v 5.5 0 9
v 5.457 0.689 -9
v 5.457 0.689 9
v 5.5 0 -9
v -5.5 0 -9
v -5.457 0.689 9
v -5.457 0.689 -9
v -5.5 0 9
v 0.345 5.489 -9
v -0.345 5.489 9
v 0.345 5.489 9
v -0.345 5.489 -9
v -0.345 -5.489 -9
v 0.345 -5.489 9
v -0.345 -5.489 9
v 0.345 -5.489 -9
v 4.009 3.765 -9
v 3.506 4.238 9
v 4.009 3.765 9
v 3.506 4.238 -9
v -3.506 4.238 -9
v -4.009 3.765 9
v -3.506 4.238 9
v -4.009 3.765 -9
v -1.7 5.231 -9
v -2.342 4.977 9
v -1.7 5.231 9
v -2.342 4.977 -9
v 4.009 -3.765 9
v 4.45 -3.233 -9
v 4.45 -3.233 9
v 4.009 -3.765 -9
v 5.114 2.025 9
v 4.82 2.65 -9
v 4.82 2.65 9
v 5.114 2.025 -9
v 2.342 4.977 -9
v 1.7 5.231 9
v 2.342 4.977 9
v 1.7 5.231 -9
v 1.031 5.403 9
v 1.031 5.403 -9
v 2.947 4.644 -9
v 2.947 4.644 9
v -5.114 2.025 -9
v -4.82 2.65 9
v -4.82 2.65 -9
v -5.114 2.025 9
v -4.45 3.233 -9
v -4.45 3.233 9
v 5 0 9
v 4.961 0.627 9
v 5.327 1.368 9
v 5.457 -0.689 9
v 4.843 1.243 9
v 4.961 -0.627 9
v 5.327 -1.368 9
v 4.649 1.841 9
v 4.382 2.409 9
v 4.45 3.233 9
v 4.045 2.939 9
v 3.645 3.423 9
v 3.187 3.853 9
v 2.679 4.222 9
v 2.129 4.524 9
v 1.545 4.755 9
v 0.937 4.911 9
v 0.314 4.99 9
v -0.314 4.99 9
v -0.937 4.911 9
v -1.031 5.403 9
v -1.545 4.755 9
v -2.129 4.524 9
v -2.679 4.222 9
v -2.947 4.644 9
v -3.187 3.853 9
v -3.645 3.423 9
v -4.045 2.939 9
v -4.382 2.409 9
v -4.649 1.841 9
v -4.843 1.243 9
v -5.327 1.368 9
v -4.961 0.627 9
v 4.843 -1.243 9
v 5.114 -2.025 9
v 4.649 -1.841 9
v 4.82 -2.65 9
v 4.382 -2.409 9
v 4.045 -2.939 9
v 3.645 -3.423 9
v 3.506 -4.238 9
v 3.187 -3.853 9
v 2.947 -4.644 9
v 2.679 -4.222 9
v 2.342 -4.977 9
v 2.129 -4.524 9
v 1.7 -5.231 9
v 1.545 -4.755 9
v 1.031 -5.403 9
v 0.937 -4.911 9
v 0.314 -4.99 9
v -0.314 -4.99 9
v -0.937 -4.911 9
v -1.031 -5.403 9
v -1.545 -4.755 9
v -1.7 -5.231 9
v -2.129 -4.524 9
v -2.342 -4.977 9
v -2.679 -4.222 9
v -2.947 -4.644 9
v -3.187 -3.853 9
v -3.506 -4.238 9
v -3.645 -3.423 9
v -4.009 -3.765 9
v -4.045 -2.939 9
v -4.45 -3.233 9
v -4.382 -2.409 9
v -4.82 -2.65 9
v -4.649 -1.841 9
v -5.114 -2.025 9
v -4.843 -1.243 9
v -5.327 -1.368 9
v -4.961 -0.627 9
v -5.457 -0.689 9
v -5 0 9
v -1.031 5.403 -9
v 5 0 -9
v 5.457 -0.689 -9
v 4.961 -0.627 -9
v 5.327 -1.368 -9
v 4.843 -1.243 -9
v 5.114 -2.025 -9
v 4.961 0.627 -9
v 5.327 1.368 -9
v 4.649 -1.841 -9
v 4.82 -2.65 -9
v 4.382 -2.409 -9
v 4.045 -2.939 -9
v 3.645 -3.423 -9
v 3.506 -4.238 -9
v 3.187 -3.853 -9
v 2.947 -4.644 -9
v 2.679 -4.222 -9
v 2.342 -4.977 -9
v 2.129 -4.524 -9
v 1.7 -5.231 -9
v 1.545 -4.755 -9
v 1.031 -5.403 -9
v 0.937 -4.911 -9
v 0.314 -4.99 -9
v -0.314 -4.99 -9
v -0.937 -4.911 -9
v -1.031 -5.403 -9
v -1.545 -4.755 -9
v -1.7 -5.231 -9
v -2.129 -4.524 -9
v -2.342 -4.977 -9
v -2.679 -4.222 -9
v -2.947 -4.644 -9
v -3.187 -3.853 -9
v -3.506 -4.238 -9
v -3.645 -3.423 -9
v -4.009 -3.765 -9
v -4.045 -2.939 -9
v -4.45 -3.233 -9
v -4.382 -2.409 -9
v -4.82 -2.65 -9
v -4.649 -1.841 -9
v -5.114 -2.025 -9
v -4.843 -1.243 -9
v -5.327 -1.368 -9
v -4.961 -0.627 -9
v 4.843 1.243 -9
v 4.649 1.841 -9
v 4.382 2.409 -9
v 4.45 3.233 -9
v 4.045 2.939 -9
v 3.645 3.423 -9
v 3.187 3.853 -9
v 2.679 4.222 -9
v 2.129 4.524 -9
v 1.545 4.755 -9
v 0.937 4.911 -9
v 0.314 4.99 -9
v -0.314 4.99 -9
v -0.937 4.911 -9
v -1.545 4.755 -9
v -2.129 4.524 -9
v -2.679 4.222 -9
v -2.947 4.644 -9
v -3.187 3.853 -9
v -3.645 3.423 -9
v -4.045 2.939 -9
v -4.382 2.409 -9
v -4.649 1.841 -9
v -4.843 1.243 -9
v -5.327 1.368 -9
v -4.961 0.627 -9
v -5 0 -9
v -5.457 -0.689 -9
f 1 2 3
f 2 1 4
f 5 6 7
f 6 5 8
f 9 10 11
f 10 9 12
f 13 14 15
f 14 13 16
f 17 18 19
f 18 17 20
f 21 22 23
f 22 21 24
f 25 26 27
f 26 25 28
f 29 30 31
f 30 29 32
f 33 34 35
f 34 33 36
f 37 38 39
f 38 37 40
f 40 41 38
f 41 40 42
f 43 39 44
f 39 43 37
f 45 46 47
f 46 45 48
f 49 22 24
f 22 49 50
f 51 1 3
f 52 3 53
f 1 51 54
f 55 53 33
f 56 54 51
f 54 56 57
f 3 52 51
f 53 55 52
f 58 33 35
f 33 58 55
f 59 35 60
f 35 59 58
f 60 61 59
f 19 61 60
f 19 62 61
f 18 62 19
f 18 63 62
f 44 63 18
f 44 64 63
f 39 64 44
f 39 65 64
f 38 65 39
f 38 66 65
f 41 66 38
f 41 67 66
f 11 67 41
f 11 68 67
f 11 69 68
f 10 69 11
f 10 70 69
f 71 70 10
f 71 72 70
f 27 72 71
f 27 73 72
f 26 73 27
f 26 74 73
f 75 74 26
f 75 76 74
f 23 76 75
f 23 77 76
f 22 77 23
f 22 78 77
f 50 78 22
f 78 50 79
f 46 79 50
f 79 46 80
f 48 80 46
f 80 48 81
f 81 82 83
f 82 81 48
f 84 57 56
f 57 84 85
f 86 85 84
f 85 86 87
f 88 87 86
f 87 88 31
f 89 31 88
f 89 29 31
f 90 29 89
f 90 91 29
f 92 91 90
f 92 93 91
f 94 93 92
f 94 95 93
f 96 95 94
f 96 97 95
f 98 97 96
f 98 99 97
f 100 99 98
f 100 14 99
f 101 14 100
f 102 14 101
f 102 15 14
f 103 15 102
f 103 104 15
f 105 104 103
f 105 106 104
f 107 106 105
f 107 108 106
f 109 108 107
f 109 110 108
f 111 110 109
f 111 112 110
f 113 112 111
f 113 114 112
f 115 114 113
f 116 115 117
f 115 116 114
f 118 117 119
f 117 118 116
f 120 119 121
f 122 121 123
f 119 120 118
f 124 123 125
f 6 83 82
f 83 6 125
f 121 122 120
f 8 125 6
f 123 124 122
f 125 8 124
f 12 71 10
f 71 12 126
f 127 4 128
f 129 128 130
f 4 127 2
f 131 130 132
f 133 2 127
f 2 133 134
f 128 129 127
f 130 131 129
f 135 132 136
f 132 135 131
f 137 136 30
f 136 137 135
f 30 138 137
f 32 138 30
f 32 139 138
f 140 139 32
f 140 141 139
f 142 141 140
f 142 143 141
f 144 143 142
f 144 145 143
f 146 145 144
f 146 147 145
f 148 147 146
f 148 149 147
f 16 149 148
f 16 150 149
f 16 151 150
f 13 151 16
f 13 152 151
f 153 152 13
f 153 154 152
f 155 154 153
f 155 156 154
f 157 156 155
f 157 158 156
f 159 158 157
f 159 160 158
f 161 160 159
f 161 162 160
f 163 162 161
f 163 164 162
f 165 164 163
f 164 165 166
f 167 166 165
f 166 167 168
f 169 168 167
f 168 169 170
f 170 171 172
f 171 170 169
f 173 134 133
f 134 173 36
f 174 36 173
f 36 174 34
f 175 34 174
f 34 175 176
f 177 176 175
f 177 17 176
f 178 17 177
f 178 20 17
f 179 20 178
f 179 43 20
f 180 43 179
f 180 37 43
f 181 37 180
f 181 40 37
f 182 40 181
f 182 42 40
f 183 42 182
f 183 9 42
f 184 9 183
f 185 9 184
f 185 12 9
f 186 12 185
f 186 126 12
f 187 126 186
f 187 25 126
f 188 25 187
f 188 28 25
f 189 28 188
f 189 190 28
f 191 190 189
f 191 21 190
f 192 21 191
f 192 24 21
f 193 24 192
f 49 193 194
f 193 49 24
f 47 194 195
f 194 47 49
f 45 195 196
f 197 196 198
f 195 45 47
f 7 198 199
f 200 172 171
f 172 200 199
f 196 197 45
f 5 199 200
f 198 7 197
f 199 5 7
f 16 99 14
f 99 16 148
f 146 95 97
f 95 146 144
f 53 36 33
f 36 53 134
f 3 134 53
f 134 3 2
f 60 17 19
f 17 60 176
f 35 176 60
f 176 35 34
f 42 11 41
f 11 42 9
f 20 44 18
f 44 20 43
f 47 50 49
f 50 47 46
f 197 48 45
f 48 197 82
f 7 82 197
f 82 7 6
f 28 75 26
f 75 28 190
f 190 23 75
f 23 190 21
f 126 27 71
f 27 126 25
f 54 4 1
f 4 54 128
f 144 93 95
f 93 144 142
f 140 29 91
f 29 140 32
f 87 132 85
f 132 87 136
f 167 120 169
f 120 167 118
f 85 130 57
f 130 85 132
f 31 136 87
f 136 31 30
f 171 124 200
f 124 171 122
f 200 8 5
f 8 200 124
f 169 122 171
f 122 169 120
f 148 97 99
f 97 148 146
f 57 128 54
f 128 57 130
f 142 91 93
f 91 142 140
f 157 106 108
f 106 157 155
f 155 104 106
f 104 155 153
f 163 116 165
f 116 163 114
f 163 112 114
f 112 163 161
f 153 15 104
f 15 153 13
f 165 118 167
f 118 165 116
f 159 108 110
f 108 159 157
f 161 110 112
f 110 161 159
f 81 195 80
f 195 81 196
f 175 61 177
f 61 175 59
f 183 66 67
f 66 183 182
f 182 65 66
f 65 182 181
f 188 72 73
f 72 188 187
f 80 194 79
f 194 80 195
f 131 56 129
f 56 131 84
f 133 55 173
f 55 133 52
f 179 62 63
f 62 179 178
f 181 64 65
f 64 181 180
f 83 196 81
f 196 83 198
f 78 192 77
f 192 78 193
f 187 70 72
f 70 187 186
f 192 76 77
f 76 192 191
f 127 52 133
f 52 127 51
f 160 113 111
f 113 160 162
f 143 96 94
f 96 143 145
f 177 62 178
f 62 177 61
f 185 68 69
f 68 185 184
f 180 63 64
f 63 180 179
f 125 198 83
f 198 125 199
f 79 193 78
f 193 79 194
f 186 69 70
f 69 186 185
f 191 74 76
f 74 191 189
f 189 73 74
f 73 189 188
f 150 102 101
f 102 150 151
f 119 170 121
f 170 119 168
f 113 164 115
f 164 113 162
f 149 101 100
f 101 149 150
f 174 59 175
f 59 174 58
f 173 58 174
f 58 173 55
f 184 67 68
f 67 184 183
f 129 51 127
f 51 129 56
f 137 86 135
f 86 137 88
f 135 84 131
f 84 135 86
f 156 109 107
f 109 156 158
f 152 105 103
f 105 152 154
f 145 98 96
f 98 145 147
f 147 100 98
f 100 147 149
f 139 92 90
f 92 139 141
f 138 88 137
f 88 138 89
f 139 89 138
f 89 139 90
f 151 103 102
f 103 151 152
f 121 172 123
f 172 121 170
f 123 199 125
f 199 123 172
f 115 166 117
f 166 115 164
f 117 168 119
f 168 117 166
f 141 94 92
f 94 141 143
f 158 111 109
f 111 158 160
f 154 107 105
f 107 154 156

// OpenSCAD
$fn = 50;


difference() {
	union() {
		translate(v = [0, 0, -9.0000000000]) {
			cylinder(h = 18, r = 5.5000000000);
		}
	}
	union() {
		translate(v = [0, 0, -100.0000000000]) {
			cylinder(h = 200, r = 5.0000000000);
		}
	}
}
